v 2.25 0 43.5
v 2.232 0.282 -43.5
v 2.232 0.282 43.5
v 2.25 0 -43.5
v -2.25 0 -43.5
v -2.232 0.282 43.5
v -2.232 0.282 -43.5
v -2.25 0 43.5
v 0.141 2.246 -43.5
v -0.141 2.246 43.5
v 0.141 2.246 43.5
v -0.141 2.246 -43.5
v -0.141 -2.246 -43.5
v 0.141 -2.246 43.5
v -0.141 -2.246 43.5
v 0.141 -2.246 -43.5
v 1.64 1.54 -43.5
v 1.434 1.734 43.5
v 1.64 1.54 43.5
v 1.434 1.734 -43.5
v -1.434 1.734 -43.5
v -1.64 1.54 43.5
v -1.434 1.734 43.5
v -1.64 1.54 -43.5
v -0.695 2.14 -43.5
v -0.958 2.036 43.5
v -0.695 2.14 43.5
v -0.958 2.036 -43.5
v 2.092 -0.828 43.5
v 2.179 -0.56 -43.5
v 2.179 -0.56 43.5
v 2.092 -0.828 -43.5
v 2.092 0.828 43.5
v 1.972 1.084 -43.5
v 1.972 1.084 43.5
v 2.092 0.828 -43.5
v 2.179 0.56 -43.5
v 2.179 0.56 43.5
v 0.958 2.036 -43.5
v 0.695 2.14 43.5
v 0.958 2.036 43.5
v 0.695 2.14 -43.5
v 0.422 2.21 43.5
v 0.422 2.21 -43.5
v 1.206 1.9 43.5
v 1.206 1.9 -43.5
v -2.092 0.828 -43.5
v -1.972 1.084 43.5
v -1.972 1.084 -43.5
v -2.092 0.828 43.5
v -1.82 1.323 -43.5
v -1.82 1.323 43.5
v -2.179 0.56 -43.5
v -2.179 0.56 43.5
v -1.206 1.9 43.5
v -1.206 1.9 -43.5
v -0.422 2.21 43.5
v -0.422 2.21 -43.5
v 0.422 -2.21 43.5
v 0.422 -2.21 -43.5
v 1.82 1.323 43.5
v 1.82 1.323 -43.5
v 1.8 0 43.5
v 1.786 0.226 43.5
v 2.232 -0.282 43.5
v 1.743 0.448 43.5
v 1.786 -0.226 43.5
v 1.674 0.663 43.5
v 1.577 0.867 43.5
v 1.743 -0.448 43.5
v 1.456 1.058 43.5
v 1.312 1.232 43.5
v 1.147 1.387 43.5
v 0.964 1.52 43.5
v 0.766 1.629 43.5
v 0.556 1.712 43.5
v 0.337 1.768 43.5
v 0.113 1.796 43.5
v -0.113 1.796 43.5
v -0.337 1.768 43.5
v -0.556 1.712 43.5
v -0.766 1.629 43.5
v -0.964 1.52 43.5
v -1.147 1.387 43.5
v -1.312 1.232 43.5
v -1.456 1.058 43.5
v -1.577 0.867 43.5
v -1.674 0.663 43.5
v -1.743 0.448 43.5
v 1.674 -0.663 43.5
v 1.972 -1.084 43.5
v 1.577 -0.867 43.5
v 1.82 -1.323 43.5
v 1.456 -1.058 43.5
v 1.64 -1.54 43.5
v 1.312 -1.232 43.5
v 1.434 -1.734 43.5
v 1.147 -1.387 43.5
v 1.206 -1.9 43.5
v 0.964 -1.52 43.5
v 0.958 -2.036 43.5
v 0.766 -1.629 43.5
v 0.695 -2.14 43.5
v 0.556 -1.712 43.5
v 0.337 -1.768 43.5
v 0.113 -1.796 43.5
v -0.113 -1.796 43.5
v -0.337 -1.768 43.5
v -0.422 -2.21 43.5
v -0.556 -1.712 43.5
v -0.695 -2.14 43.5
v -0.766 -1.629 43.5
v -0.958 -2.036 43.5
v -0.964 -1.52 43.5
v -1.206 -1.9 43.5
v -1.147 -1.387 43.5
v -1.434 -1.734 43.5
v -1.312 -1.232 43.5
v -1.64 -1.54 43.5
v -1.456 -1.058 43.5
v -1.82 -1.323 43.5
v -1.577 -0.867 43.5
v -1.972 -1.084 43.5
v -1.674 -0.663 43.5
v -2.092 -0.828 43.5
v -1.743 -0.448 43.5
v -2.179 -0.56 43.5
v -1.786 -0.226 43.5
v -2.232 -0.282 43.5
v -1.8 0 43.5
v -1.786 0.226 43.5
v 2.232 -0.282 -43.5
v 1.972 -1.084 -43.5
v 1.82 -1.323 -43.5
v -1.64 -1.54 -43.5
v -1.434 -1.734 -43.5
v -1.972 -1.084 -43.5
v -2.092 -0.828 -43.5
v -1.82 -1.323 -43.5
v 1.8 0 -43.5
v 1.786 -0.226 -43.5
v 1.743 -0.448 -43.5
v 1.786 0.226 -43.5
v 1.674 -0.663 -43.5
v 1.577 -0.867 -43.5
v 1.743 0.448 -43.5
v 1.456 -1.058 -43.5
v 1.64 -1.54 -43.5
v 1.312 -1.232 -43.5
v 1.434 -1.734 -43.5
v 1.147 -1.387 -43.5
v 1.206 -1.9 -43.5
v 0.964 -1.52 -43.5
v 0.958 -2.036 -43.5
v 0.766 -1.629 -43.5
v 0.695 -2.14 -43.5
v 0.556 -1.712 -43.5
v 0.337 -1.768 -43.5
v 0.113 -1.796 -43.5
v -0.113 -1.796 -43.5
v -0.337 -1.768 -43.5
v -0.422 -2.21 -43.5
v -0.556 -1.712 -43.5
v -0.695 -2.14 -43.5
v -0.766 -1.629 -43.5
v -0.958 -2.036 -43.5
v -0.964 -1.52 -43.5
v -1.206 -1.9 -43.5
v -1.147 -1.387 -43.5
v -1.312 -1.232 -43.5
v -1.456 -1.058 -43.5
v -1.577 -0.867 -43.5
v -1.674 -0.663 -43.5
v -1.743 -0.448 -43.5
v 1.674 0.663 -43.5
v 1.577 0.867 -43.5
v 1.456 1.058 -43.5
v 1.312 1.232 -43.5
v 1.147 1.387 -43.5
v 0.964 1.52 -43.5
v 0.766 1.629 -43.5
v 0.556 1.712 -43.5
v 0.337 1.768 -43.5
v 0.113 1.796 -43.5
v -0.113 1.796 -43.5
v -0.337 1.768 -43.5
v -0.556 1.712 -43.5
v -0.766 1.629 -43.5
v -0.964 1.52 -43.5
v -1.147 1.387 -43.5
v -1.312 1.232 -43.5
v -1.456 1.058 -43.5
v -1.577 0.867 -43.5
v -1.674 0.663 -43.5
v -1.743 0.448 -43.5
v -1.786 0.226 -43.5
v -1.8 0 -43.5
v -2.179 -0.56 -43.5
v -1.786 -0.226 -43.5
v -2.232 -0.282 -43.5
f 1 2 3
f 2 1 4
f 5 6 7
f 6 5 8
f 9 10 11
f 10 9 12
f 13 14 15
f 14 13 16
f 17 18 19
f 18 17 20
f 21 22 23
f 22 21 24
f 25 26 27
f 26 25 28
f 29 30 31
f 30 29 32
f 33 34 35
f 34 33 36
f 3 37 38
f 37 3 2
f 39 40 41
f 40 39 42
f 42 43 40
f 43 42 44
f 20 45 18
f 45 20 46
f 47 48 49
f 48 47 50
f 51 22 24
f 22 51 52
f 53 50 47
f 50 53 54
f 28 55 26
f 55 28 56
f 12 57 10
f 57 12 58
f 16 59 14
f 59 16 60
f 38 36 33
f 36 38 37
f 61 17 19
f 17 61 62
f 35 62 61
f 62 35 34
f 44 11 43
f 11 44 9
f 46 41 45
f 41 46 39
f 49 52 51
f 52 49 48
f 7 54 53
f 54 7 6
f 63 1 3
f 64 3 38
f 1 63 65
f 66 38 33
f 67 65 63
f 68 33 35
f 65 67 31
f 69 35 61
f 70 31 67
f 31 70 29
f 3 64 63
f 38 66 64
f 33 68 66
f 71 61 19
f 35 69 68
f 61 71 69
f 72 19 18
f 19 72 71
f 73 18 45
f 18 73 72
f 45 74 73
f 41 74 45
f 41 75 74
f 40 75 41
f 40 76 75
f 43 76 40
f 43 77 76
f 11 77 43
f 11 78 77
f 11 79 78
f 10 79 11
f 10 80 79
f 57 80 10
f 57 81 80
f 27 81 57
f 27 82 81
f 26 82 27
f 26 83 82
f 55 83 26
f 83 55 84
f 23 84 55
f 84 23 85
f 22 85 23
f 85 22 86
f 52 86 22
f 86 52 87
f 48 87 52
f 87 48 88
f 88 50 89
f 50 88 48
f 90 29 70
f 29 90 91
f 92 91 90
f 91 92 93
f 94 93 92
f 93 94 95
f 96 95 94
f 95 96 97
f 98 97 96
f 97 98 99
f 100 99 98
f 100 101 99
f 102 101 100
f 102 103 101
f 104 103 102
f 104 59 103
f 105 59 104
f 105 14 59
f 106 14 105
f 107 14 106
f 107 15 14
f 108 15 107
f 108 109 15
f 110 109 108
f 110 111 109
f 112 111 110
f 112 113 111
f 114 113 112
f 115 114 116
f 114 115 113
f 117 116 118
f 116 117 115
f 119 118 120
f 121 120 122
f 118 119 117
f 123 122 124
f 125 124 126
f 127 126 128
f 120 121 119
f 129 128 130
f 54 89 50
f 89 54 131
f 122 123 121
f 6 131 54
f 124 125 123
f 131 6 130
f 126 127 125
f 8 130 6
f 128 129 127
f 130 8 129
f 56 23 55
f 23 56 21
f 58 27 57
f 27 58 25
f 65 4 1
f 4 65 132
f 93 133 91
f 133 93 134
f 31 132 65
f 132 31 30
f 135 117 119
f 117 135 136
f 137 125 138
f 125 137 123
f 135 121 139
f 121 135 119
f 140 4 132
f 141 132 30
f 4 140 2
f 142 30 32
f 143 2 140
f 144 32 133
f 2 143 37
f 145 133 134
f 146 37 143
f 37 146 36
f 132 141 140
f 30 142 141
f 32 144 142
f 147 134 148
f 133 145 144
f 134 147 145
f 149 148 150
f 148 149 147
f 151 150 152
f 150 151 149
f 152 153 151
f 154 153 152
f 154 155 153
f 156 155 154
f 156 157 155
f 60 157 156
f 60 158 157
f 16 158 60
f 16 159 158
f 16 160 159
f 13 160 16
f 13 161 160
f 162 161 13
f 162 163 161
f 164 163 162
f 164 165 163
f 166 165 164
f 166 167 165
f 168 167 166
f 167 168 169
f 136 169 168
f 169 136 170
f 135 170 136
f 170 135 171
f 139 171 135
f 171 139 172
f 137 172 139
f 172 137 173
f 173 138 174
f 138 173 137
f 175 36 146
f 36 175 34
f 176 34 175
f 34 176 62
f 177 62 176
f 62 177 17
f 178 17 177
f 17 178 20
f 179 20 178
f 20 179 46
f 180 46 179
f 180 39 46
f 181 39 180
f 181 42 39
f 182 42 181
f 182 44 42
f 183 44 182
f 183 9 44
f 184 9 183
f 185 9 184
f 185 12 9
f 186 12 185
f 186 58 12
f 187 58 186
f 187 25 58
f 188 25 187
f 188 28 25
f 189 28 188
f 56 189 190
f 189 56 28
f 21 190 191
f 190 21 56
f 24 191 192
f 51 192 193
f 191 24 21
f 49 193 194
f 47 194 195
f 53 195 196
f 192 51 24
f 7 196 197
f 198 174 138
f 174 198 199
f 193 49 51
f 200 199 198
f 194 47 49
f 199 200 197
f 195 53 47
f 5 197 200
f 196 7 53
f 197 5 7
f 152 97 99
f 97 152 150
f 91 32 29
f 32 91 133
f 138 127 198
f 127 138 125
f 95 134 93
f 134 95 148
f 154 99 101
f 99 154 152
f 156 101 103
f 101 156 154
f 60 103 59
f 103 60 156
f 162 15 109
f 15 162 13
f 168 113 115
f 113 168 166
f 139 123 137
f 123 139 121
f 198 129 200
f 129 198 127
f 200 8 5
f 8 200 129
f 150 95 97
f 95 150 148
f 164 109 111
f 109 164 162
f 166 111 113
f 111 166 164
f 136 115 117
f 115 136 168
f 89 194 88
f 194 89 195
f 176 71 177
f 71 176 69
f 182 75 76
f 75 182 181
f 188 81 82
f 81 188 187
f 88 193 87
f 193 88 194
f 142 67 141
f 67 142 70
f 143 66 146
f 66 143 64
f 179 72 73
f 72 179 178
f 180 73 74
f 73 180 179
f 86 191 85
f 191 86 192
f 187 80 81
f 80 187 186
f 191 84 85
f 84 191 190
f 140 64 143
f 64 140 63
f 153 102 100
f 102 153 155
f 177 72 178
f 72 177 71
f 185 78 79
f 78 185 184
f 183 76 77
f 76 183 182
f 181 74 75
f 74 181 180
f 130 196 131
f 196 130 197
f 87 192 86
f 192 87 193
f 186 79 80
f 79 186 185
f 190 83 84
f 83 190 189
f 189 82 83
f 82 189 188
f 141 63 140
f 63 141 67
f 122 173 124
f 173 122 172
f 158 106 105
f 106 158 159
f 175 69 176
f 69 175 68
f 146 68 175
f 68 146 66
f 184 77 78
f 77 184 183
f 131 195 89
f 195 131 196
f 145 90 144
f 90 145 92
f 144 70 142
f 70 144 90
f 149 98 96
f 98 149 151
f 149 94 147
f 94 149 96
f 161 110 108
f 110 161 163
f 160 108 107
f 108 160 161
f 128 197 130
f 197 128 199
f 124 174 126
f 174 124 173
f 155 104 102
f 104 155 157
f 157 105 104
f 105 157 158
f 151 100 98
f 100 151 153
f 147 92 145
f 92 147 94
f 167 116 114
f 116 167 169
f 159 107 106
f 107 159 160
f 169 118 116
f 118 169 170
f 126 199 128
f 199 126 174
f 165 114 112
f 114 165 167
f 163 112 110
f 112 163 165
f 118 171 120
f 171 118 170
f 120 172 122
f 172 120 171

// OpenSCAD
$fn = 50;


difference() {
	union() {
		translate(v = [0, 0, -43.5000000000]) {
			cylinder(h = 87, r = 2.2500000000);
		}
	}
	union() {
		#translate(v = [0, 0, -100.0000000000]) {
			cylinder(h = 200, r = 1.8000000000);
		}
	}
}
